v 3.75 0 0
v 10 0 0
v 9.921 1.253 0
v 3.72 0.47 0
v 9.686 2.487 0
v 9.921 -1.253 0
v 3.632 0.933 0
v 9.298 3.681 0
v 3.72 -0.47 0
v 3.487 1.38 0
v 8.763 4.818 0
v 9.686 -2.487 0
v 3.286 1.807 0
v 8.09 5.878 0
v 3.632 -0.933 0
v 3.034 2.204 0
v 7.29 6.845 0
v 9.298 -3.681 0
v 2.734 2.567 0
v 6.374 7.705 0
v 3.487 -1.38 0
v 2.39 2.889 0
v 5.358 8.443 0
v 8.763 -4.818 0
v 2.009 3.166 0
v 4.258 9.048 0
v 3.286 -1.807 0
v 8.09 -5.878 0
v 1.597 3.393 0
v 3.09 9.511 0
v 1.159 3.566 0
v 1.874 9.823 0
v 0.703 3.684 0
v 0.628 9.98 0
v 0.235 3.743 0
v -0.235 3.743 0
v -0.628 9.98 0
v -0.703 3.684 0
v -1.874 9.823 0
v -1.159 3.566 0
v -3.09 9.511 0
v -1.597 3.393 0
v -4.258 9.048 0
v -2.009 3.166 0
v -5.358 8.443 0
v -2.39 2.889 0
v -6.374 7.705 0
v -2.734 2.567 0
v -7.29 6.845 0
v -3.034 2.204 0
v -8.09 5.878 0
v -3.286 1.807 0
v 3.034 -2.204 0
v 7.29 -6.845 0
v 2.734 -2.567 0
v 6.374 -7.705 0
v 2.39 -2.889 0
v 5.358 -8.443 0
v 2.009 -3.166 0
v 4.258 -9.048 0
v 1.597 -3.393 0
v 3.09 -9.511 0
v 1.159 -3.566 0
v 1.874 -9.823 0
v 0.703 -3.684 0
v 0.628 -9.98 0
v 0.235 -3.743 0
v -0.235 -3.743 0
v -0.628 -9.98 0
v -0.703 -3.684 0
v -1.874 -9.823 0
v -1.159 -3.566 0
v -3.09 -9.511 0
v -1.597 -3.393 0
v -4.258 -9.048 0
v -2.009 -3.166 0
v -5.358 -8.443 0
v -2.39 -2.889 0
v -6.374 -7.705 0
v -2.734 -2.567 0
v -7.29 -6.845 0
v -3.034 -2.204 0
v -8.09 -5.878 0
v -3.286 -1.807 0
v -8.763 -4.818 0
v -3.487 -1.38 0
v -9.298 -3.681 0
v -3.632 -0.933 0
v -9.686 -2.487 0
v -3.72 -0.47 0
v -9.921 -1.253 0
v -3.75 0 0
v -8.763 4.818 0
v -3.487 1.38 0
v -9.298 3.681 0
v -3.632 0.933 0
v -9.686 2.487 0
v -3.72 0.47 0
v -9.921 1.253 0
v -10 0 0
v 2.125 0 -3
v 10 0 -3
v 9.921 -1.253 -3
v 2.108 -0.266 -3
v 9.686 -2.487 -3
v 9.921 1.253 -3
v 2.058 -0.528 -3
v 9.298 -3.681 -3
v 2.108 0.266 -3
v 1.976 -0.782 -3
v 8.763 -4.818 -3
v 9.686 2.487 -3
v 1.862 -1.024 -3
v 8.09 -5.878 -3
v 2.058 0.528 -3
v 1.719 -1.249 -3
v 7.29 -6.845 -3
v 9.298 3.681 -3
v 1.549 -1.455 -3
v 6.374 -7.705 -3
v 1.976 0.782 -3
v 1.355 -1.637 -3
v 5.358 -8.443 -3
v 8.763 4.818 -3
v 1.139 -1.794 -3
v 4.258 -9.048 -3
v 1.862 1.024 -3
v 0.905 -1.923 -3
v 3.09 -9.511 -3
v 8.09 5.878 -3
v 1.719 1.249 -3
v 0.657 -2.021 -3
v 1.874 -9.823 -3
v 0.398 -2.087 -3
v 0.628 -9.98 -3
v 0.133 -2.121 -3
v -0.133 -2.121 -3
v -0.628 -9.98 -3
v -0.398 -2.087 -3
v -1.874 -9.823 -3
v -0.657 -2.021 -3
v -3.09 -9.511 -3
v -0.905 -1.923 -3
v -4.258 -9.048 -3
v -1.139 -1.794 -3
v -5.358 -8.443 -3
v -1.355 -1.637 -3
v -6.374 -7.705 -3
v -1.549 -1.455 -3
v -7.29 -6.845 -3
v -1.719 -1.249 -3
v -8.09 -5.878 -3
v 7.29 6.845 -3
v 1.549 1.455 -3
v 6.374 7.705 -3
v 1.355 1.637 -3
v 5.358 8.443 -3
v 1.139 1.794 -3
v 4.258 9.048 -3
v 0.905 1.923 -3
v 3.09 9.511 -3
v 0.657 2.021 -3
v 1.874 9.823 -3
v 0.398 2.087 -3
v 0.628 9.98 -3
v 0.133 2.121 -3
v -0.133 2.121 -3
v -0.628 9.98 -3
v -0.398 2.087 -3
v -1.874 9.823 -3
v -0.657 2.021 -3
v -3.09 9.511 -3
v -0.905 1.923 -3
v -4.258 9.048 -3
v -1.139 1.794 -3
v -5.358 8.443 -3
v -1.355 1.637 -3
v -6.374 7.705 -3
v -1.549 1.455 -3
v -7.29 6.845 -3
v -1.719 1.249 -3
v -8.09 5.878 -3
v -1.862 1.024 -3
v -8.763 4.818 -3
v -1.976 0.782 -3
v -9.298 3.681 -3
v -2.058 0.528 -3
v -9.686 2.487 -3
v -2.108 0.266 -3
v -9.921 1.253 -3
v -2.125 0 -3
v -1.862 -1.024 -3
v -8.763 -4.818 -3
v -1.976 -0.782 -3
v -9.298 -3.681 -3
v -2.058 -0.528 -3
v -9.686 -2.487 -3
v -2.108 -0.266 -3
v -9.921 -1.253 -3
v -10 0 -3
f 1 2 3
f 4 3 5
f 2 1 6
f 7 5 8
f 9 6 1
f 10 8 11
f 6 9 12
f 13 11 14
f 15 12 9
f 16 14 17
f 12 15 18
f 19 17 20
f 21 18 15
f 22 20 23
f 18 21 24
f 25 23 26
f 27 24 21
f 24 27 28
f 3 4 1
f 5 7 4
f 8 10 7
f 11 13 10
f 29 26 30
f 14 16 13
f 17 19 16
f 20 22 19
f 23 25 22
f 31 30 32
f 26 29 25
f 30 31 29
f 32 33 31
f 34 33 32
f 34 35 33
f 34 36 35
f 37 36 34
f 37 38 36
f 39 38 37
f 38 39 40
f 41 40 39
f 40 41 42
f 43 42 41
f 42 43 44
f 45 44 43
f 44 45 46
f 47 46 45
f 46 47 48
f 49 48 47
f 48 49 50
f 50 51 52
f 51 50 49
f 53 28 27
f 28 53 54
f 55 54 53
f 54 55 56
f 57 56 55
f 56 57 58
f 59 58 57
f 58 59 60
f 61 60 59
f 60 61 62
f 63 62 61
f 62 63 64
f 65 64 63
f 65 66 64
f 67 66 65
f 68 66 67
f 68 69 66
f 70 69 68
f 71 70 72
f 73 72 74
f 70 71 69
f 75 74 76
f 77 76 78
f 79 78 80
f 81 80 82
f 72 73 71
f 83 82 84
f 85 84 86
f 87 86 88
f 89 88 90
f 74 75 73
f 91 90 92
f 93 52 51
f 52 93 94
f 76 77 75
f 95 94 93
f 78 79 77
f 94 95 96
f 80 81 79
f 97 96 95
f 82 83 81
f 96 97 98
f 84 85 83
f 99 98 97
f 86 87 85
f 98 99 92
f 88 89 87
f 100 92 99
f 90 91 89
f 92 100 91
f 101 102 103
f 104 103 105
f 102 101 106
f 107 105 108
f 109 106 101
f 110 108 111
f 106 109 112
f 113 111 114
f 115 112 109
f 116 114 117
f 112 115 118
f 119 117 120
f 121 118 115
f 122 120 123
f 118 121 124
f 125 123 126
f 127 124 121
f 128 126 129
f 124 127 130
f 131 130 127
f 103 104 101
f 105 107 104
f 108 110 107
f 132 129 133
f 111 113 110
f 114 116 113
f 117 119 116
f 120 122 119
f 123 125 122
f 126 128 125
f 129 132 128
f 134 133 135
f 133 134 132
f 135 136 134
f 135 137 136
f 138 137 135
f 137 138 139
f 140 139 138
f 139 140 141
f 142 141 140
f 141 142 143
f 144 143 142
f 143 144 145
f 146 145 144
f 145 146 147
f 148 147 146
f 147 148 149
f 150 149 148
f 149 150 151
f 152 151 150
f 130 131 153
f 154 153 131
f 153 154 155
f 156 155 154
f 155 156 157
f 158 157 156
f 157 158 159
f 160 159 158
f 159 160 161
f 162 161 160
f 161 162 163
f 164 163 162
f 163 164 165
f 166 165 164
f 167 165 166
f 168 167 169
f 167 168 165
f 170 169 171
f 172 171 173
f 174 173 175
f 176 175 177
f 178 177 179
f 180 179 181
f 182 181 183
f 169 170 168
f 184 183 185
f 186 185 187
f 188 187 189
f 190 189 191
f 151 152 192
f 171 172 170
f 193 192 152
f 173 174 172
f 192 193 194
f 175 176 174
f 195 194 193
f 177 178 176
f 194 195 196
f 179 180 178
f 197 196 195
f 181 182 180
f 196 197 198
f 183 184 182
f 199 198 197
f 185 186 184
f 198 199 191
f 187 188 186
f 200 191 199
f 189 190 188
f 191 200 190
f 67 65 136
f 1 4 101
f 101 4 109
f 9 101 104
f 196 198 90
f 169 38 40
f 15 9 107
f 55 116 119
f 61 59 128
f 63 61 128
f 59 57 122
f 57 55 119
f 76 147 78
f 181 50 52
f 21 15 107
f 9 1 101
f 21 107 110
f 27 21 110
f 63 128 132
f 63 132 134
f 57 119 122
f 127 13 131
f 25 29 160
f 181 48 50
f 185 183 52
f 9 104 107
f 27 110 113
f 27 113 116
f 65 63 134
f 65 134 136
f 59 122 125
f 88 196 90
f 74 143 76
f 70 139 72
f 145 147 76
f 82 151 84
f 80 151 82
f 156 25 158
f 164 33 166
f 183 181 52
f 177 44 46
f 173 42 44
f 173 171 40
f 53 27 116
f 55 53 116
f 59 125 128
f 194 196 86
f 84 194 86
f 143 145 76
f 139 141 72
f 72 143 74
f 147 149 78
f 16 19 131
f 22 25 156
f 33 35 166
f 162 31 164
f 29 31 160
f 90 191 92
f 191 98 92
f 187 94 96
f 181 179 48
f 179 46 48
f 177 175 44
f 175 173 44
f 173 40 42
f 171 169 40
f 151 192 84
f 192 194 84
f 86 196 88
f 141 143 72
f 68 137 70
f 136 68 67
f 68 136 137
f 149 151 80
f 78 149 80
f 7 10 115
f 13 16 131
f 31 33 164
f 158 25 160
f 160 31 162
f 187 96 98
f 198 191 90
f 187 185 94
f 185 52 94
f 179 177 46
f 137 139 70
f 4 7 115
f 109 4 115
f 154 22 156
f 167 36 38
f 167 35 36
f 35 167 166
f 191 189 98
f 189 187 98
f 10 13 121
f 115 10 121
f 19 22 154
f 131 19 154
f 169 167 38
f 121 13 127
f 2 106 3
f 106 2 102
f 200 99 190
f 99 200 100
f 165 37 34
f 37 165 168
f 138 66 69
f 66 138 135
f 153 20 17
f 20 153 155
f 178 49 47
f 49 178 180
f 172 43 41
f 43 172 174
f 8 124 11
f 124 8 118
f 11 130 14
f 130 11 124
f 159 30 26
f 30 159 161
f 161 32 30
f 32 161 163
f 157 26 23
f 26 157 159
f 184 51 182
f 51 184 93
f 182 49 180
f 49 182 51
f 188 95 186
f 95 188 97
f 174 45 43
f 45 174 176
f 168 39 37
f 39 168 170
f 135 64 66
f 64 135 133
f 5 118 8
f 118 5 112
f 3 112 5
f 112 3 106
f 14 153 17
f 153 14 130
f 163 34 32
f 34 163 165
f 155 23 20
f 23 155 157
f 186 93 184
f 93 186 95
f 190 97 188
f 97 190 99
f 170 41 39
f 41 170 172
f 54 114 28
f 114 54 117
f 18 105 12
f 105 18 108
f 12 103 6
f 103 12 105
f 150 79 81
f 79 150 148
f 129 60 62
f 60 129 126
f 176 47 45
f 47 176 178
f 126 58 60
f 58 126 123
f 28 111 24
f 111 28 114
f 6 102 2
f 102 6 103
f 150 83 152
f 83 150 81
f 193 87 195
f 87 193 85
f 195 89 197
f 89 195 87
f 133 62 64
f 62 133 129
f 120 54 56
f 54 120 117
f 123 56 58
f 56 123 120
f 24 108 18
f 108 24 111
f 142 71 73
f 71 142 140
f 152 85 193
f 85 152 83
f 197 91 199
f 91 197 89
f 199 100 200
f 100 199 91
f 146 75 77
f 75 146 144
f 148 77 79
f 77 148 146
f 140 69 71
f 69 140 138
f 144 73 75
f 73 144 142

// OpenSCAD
$fn = 50;


difference() {
	union() {
		translate(v = [0, 0, -3.0000000000]) {
			cylinder(h = 3, r = 10.0000000000);
		}
		cylinder(h = 0, r = 19.0000000000);
	}
	union() {
		translate(v = [0, 0, 0]) {
			rotate(a = [0, 0, 0]) {
				difference() {
					union() {
						#translate(v = [0, 0, -3.0000000000]) {
							cylinder(h = 3, r = 2.0000000000);
						}
						#translate(v = [0, 0, -3]) {
							cylinder(h = 3, r1 = 2.1250000000, r2 = 3.7500000000);
						}
						#translate(v = [0, 0, -3.0000000000]) {
							cylinder(h = 3, r = 2.1250000000);
						}
						#translate(v = [0, 0, -3.0000000000]) {
							cylinder(h = 3, r = 2.0000000000);
						}
					}
					union();
				}
			}
		}
	}
}
